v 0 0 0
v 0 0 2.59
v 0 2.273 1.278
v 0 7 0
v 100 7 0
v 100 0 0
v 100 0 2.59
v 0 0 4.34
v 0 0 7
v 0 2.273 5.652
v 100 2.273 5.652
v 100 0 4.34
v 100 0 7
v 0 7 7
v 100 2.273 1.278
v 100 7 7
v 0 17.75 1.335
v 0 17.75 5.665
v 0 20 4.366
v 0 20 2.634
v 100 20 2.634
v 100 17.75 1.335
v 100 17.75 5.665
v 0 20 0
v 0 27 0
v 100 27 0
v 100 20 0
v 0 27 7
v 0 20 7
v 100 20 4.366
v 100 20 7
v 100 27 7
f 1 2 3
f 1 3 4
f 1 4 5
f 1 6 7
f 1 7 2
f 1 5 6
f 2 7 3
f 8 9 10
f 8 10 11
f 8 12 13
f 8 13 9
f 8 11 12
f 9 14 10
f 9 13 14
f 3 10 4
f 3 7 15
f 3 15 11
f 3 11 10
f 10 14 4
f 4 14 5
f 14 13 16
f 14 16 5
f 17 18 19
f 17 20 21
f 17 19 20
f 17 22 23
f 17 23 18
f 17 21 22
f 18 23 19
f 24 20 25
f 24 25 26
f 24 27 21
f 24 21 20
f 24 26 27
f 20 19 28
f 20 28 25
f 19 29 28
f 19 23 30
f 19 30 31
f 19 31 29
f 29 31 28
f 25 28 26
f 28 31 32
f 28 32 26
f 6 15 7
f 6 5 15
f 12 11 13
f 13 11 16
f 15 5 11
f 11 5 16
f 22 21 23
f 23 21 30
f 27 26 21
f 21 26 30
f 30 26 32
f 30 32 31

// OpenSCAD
module male_part()
{
  
     cube([100, 7, 7]);
     rotate([90,0,0]) translate([0,3.5,1]) rotate([0,90,0]) cylinder(r=5/2,h=100,$fn=3);
     
}     
     
module female_part()
{
  difference(){
      cube([100, 7, 7]);
      rotate([180,0,0]) translate([0,0,-7]) scale([1.01,1.01,1.01]) male_part();
     }
}          
     
translate([0,0,0]) female_part();
translate([0,20,0]) male_part();
 
